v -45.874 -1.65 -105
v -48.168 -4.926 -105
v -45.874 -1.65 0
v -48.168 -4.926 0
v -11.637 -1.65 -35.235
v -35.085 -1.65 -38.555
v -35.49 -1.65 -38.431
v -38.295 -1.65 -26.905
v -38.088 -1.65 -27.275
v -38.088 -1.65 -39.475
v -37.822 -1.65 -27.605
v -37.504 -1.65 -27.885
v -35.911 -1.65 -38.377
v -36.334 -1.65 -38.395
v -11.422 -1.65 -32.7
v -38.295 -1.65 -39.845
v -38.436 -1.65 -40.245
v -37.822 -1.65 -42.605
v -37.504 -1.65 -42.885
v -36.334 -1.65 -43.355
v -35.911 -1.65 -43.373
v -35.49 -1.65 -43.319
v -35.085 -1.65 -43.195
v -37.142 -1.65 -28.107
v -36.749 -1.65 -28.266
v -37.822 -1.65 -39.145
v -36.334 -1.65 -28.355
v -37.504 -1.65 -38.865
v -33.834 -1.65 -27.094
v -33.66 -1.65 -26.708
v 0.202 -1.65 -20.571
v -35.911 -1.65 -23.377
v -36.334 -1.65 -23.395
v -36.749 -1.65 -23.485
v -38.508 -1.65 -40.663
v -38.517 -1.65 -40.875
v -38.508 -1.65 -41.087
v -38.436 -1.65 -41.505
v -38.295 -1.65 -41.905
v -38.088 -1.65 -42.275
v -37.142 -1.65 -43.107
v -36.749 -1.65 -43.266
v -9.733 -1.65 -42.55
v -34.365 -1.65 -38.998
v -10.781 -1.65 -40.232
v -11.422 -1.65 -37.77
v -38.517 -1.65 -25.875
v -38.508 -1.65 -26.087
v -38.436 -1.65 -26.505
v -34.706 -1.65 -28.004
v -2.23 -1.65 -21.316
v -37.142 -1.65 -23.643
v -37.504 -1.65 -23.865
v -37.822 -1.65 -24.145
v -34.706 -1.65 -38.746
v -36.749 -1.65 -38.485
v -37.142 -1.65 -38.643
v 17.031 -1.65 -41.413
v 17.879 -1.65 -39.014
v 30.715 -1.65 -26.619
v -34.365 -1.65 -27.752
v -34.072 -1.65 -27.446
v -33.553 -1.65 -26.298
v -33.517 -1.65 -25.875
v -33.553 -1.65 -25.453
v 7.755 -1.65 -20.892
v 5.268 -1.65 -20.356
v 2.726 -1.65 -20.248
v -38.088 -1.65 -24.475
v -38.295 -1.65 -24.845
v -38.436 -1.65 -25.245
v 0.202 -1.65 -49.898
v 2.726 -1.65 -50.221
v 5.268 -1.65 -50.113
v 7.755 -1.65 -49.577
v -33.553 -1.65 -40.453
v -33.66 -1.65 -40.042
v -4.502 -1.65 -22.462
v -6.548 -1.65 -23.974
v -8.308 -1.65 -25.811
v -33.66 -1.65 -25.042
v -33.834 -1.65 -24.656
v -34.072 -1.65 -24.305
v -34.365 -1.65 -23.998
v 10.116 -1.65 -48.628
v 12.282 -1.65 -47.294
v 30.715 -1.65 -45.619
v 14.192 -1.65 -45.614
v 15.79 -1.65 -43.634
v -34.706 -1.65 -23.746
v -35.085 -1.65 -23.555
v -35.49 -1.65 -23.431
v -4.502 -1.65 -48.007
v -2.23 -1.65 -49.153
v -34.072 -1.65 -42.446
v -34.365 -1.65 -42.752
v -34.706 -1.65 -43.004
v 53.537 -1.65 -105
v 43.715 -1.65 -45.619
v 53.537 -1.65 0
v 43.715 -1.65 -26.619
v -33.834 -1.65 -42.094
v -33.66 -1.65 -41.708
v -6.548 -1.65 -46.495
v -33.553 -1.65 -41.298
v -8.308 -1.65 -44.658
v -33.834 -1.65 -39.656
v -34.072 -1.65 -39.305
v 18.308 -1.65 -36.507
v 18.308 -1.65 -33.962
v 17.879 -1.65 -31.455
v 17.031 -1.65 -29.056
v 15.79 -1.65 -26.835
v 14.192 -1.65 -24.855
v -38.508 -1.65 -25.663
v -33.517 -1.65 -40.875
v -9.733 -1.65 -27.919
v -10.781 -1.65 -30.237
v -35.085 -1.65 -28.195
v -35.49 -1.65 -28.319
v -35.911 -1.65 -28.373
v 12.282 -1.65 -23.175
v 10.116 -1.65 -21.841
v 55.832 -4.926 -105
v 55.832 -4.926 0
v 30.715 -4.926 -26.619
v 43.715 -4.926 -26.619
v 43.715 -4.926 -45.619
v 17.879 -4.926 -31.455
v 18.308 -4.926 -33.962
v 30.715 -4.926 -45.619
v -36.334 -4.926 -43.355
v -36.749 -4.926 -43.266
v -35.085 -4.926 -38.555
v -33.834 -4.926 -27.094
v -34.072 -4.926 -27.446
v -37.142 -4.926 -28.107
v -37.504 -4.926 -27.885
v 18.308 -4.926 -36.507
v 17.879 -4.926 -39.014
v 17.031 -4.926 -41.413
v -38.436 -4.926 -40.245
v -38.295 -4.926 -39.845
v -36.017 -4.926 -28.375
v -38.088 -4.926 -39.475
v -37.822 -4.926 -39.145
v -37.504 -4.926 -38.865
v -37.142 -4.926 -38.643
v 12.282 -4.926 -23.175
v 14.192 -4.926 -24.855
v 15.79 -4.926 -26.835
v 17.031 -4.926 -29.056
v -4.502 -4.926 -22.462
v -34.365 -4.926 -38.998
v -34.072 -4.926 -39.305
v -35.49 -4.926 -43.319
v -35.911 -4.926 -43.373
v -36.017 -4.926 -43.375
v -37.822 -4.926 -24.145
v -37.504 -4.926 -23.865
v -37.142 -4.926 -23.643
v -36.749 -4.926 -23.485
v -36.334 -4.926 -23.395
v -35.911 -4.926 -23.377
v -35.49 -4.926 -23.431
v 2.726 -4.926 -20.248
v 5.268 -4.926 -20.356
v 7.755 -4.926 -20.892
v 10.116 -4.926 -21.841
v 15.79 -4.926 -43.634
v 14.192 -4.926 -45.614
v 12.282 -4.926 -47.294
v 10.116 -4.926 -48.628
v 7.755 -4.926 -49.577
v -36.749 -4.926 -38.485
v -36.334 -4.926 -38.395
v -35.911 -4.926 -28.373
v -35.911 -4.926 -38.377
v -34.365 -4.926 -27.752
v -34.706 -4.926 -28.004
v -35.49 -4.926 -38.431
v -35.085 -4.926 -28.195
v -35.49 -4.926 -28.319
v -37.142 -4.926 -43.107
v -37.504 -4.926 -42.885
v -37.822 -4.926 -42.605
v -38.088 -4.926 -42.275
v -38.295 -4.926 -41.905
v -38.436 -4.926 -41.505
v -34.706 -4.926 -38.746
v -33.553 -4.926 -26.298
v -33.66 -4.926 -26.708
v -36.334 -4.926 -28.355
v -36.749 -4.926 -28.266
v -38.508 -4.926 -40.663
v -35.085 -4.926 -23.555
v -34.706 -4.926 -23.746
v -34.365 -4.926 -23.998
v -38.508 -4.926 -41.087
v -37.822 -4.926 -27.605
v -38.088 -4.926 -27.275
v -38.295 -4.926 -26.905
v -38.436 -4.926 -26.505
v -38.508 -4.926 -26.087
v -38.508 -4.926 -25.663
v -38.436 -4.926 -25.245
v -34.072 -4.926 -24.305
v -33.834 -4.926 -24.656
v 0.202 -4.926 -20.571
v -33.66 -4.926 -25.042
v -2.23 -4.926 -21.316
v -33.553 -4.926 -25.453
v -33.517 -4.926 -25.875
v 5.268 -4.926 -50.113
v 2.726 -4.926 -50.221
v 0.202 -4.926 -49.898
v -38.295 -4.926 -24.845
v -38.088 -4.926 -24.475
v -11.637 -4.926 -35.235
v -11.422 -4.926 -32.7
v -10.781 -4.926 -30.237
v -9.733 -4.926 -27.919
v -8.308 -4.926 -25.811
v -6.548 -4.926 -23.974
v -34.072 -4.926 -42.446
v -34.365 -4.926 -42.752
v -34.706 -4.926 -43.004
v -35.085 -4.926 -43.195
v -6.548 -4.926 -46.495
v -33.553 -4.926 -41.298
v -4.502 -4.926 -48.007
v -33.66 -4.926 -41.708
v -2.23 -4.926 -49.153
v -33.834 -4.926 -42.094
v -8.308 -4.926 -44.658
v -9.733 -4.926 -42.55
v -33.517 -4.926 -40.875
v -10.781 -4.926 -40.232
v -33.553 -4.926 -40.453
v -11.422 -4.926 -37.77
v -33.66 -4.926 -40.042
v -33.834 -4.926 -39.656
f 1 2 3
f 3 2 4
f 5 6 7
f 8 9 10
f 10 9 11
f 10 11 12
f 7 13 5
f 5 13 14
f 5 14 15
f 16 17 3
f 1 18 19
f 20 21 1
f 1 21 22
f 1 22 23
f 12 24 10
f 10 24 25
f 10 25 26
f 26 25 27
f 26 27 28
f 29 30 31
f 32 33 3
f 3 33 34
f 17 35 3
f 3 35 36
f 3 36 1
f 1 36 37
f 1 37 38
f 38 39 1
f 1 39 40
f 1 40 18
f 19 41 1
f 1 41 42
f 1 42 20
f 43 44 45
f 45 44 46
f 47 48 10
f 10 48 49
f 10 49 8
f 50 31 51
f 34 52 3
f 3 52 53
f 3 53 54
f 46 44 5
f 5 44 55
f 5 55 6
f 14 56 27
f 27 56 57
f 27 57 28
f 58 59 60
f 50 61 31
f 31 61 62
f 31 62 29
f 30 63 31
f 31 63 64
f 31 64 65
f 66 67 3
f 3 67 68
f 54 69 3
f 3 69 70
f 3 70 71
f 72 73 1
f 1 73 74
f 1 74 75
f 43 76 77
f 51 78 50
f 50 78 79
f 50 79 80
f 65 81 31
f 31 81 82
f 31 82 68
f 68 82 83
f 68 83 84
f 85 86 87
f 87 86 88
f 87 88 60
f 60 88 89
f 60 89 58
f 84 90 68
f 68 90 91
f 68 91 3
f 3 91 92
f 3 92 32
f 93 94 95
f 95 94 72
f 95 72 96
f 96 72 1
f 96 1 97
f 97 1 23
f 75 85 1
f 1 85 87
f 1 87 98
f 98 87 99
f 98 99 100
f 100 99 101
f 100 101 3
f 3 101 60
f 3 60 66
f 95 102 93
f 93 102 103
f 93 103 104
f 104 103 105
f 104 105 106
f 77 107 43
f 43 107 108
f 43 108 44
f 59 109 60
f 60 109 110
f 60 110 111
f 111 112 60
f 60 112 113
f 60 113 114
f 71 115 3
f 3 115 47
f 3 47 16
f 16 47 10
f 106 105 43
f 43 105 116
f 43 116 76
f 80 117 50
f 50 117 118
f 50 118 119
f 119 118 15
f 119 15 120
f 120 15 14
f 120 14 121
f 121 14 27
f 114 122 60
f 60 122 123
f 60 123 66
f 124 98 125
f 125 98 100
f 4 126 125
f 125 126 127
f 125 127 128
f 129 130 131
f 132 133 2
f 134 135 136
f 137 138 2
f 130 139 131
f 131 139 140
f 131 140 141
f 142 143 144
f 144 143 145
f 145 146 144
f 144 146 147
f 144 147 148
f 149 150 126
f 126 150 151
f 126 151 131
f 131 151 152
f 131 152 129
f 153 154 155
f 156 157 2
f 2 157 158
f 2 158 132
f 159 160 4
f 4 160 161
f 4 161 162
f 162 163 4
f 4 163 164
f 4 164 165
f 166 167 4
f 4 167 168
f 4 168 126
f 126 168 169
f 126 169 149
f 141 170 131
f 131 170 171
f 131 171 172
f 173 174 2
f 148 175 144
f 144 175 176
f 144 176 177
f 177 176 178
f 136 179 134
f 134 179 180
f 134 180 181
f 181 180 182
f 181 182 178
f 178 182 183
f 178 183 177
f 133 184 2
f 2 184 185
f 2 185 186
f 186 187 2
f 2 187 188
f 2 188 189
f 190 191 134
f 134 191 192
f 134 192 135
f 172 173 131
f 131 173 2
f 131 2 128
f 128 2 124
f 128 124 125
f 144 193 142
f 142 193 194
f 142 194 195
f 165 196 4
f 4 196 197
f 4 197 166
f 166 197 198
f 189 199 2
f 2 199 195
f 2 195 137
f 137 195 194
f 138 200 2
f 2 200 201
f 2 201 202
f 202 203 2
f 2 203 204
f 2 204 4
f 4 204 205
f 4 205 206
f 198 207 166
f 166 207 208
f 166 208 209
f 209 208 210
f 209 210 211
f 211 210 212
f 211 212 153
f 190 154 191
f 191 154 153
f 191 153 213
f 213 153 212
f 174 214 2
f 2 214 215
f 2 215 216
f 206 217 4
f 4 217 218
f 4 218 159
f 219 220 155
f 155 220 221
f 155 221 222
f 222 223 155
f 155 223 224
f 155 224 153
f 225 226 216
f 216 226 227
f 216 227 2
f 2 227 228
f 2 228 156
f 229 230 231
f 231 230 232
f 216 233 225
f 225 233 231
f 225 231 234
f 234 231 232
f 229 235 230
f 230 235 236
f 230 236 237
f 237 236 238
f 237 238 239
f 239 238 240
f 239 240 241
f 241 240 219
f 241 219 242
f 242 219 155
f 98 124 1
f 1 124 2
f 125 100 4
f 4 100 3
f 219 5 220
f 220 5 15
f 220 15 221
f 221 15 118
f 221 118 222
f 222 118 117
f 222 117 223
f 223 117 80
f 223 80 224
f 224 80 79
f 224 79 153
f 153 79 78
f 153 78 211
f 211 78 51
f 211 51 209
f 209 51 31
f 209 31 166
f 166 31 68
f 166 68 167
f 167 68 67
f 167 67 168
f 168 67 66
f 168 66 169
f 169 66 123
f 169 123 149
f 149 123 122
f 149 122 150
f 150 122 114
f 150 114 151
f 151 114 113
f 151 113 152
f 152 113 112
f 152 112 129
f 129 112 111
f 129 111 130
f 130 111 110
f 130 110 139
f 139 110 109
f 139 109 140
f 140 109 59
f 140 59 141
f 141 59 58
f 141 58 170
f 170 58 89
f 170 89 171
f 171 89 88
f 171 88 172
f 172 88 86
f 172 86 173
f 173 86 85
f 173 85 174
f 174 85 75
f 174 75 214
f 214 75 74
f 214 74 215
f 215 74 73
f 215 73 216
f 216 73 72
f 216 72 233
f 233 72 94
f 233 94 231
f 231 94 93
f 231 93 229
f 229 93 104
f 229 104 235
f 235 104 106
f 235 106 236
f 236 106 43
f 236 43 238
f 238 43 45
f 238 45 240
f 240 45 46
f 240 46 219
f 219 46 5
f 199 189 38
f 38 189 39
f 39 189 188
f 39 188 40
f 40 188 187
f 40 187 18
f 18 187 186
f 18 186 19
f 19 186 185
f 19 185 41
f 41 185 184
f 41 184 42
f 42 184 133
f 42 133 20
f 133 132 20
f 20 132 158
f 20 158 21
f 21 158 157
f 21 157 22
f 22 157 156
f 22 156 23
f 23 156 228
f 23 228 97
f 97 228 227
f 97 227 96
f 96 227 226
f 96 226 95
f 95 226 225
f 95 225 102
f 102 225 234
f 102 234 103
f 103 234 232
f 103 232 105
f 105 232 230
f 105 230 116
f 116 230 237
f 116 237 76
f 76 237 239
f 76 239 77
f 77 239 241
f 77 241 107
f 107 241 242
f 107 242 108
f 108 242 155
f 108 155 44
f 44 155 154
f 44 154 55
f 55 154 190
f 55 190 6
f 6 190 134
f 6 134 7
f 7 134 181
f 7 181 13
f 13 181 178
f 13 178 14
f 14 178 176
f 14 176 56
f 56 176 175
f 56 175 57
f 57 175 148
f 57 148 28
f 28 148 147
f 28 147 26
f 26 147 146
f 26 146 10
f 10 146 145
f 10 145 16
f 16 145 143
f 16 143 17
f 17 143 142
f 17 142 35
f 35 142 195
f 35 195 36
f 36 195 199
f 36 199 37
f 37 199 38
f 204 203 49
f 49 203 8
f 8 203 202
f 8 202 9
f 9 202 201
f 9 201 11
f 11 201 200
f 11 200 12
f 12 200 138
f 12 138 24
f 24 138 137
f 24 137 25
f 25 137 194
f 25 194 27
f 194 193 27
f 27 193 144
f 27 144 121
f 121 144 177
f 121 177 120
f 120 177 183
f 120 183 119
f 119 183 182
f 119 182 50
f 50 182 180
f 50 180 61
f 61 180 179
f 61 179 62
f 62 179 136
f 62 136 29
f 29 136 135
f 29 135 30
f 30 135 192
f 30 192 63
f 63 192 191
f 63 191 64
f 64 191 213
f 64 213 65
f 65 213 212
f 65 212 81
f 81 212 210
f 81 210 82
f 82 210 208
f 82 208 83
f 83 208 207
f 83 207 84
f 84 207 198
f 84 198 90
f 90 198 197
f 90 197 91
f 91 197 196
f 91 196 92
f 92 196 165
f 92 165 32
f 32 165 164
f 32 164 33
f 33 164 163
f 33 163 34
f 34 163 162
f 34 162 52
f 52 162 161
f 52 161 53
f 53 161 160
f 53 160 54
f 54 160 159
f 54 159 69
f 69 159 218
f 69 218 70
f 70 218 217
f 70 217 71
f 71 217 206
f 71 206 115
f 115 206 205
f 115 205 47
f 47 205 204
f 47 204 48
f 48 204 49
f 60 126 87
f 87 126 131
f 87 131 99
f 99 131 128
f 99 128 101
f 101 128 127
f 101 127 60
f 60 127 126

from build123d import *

# Parameters (mm, degrees)
BOSS_EXTRUDE1_DEPTH            = 105
SKETCH2_R                      = 15
CUT_EXTRUDE1_DEPTH             = 1
CUT_EXTRUDE1_DEPTH_BACK        = 4.276608177
CUT_EXTRUDE2_REACH             = 5.277
SKETCH3_R                      = 2.5
CUT_EXTRUDE2_DIRECTION_2_DEPTH = 1
CUT_EXTRUDE3_REACH             = 5.277
SKETCH4_W                      = 13
SKETCH4_H                      = 19


with BuildPart() as part:
    # Sketch1 → Boss-Extrude1 (new body)
    with BuildSketch(Plane.XY):
        Polygon((-48.168421053, -4.926315789), (55.831578947, -4.926315789), (53.537273202, -1.649707612), (-45.874115307, -1.649707612), align=None)
    extrude(amount=-BOSS_EXTRUDE1_DEPTH)

    # Sketch2 → Cut-Extrude1 (cut, two sides)
    with BuildSketch(Plane(origin=(0, -1.649707612, 0), x_dir=(1, 0, 0), z_dir=(0, 1, 0))) as cut_extrude1_sk:
        with Locations((3.362524977, 35.234526985)):
            Circle(SKETCH2_R)
    extrude(amount=CUT_EXTRUDE1_DEPTH, mode=Mode.SUBTRACT)
    extrude(cut_extrude1_sk.sketch, amount=-CUT_EXTRUDE1_DEPTH_BACK, mode=Mode.SUBTRACT)

    # Sketch3 → Cut-Extrude2 (cut, up to next)
    with BuildSketch(Plane(origin=(0, -1.649707612, 0), x_dir=(1, 0, 0), z_dir=(0, 1, 0)), mode=Mode.PRIVATE) as cut_extrude2_sk1:
        with Locations((-36.016928445, 25.875156143)):
            Circle(SKETCH3_R)
    cut_extrude2_tool1 = extrude(cut_extrude2_sk1.sketch, amount=-CUT_EXTRUDE2_REACH, mode=Mode.PRIVATE) & part.part
    add(cut_extrude2_tool1.solids().sort_by_distance((-36.016928, -1.649708, -25.875156))[0], mode=Mode.SUBTRACT)
    # Sketch3 → Cut-Extrude2 (cut, up to next)
    with BuildSketch(Plane(origin=(0, -1.649707612, 0), x_dir=(1, 0, 0), z_dir=(0, 1, 0)), mode=Mode.PRIVATE) as cut_extrude2_sk2:
        with Locations((-36.016928445, 40.875156143)):
            Circle(SKETCH3_R)
    cut_extrude2_tool2 = extrude(cut_extrude2_sk2.sketch, amount=-CUT_EXTRUDE2_REACH, mode=Mode.PRIVATE) & part.part
    add(cut_extrude2_tool2.solids().sort_by_distance((-36.016928, -1.649708, -40.875156))[0], mode=Mode.SUBTRACT)

    # Sketch3 → Cut-Extrude2 direction 2 (cut)
    with BuildSketch(Plane(origin=(0, -1.649707612, 0), x_dir=(1, 0, 0), z_dir=(0, 1, 0))):
        with Locations((-36.016928445, 25.875156143)):
            Circle(SKETCH3_R)
        with Locations((-36.016928445, 40.875156143)):
            Circle(SKETCH3_R)
    extrude(amount=CUT_EXTRUDE2_DIRECTION_2_DEPTH, mode=Mode.SUBTRACT)

    # Sketch4 → Cut-Extrude3 (cut, up to next)
    with BuildSketch(Plane(origin=(0, -1.649707612, 0), x_dir=(1, 0, 0), z_dir=(0, 1, 0)), mode=Mode.PRIVATE) as cut_extrude3_sk1:
        with Locations((37.21482517, 36.119420448)):
            Rectangle(SKETCH4_W, SKETCH4_H)
    cut_extrude3_tool1 = extrude(cut_extrude3_sk1.sketch, amount=-CUT_EXTRUDE3_REACH, mode=Mode.PRIVATE) & part.part
    add(cut_extrude3_tool1.solids().sort_by_distance((37.214825, -1.649708, -36.11942))[0], mode=Mode.SUBTRACT)


solid = part.part
